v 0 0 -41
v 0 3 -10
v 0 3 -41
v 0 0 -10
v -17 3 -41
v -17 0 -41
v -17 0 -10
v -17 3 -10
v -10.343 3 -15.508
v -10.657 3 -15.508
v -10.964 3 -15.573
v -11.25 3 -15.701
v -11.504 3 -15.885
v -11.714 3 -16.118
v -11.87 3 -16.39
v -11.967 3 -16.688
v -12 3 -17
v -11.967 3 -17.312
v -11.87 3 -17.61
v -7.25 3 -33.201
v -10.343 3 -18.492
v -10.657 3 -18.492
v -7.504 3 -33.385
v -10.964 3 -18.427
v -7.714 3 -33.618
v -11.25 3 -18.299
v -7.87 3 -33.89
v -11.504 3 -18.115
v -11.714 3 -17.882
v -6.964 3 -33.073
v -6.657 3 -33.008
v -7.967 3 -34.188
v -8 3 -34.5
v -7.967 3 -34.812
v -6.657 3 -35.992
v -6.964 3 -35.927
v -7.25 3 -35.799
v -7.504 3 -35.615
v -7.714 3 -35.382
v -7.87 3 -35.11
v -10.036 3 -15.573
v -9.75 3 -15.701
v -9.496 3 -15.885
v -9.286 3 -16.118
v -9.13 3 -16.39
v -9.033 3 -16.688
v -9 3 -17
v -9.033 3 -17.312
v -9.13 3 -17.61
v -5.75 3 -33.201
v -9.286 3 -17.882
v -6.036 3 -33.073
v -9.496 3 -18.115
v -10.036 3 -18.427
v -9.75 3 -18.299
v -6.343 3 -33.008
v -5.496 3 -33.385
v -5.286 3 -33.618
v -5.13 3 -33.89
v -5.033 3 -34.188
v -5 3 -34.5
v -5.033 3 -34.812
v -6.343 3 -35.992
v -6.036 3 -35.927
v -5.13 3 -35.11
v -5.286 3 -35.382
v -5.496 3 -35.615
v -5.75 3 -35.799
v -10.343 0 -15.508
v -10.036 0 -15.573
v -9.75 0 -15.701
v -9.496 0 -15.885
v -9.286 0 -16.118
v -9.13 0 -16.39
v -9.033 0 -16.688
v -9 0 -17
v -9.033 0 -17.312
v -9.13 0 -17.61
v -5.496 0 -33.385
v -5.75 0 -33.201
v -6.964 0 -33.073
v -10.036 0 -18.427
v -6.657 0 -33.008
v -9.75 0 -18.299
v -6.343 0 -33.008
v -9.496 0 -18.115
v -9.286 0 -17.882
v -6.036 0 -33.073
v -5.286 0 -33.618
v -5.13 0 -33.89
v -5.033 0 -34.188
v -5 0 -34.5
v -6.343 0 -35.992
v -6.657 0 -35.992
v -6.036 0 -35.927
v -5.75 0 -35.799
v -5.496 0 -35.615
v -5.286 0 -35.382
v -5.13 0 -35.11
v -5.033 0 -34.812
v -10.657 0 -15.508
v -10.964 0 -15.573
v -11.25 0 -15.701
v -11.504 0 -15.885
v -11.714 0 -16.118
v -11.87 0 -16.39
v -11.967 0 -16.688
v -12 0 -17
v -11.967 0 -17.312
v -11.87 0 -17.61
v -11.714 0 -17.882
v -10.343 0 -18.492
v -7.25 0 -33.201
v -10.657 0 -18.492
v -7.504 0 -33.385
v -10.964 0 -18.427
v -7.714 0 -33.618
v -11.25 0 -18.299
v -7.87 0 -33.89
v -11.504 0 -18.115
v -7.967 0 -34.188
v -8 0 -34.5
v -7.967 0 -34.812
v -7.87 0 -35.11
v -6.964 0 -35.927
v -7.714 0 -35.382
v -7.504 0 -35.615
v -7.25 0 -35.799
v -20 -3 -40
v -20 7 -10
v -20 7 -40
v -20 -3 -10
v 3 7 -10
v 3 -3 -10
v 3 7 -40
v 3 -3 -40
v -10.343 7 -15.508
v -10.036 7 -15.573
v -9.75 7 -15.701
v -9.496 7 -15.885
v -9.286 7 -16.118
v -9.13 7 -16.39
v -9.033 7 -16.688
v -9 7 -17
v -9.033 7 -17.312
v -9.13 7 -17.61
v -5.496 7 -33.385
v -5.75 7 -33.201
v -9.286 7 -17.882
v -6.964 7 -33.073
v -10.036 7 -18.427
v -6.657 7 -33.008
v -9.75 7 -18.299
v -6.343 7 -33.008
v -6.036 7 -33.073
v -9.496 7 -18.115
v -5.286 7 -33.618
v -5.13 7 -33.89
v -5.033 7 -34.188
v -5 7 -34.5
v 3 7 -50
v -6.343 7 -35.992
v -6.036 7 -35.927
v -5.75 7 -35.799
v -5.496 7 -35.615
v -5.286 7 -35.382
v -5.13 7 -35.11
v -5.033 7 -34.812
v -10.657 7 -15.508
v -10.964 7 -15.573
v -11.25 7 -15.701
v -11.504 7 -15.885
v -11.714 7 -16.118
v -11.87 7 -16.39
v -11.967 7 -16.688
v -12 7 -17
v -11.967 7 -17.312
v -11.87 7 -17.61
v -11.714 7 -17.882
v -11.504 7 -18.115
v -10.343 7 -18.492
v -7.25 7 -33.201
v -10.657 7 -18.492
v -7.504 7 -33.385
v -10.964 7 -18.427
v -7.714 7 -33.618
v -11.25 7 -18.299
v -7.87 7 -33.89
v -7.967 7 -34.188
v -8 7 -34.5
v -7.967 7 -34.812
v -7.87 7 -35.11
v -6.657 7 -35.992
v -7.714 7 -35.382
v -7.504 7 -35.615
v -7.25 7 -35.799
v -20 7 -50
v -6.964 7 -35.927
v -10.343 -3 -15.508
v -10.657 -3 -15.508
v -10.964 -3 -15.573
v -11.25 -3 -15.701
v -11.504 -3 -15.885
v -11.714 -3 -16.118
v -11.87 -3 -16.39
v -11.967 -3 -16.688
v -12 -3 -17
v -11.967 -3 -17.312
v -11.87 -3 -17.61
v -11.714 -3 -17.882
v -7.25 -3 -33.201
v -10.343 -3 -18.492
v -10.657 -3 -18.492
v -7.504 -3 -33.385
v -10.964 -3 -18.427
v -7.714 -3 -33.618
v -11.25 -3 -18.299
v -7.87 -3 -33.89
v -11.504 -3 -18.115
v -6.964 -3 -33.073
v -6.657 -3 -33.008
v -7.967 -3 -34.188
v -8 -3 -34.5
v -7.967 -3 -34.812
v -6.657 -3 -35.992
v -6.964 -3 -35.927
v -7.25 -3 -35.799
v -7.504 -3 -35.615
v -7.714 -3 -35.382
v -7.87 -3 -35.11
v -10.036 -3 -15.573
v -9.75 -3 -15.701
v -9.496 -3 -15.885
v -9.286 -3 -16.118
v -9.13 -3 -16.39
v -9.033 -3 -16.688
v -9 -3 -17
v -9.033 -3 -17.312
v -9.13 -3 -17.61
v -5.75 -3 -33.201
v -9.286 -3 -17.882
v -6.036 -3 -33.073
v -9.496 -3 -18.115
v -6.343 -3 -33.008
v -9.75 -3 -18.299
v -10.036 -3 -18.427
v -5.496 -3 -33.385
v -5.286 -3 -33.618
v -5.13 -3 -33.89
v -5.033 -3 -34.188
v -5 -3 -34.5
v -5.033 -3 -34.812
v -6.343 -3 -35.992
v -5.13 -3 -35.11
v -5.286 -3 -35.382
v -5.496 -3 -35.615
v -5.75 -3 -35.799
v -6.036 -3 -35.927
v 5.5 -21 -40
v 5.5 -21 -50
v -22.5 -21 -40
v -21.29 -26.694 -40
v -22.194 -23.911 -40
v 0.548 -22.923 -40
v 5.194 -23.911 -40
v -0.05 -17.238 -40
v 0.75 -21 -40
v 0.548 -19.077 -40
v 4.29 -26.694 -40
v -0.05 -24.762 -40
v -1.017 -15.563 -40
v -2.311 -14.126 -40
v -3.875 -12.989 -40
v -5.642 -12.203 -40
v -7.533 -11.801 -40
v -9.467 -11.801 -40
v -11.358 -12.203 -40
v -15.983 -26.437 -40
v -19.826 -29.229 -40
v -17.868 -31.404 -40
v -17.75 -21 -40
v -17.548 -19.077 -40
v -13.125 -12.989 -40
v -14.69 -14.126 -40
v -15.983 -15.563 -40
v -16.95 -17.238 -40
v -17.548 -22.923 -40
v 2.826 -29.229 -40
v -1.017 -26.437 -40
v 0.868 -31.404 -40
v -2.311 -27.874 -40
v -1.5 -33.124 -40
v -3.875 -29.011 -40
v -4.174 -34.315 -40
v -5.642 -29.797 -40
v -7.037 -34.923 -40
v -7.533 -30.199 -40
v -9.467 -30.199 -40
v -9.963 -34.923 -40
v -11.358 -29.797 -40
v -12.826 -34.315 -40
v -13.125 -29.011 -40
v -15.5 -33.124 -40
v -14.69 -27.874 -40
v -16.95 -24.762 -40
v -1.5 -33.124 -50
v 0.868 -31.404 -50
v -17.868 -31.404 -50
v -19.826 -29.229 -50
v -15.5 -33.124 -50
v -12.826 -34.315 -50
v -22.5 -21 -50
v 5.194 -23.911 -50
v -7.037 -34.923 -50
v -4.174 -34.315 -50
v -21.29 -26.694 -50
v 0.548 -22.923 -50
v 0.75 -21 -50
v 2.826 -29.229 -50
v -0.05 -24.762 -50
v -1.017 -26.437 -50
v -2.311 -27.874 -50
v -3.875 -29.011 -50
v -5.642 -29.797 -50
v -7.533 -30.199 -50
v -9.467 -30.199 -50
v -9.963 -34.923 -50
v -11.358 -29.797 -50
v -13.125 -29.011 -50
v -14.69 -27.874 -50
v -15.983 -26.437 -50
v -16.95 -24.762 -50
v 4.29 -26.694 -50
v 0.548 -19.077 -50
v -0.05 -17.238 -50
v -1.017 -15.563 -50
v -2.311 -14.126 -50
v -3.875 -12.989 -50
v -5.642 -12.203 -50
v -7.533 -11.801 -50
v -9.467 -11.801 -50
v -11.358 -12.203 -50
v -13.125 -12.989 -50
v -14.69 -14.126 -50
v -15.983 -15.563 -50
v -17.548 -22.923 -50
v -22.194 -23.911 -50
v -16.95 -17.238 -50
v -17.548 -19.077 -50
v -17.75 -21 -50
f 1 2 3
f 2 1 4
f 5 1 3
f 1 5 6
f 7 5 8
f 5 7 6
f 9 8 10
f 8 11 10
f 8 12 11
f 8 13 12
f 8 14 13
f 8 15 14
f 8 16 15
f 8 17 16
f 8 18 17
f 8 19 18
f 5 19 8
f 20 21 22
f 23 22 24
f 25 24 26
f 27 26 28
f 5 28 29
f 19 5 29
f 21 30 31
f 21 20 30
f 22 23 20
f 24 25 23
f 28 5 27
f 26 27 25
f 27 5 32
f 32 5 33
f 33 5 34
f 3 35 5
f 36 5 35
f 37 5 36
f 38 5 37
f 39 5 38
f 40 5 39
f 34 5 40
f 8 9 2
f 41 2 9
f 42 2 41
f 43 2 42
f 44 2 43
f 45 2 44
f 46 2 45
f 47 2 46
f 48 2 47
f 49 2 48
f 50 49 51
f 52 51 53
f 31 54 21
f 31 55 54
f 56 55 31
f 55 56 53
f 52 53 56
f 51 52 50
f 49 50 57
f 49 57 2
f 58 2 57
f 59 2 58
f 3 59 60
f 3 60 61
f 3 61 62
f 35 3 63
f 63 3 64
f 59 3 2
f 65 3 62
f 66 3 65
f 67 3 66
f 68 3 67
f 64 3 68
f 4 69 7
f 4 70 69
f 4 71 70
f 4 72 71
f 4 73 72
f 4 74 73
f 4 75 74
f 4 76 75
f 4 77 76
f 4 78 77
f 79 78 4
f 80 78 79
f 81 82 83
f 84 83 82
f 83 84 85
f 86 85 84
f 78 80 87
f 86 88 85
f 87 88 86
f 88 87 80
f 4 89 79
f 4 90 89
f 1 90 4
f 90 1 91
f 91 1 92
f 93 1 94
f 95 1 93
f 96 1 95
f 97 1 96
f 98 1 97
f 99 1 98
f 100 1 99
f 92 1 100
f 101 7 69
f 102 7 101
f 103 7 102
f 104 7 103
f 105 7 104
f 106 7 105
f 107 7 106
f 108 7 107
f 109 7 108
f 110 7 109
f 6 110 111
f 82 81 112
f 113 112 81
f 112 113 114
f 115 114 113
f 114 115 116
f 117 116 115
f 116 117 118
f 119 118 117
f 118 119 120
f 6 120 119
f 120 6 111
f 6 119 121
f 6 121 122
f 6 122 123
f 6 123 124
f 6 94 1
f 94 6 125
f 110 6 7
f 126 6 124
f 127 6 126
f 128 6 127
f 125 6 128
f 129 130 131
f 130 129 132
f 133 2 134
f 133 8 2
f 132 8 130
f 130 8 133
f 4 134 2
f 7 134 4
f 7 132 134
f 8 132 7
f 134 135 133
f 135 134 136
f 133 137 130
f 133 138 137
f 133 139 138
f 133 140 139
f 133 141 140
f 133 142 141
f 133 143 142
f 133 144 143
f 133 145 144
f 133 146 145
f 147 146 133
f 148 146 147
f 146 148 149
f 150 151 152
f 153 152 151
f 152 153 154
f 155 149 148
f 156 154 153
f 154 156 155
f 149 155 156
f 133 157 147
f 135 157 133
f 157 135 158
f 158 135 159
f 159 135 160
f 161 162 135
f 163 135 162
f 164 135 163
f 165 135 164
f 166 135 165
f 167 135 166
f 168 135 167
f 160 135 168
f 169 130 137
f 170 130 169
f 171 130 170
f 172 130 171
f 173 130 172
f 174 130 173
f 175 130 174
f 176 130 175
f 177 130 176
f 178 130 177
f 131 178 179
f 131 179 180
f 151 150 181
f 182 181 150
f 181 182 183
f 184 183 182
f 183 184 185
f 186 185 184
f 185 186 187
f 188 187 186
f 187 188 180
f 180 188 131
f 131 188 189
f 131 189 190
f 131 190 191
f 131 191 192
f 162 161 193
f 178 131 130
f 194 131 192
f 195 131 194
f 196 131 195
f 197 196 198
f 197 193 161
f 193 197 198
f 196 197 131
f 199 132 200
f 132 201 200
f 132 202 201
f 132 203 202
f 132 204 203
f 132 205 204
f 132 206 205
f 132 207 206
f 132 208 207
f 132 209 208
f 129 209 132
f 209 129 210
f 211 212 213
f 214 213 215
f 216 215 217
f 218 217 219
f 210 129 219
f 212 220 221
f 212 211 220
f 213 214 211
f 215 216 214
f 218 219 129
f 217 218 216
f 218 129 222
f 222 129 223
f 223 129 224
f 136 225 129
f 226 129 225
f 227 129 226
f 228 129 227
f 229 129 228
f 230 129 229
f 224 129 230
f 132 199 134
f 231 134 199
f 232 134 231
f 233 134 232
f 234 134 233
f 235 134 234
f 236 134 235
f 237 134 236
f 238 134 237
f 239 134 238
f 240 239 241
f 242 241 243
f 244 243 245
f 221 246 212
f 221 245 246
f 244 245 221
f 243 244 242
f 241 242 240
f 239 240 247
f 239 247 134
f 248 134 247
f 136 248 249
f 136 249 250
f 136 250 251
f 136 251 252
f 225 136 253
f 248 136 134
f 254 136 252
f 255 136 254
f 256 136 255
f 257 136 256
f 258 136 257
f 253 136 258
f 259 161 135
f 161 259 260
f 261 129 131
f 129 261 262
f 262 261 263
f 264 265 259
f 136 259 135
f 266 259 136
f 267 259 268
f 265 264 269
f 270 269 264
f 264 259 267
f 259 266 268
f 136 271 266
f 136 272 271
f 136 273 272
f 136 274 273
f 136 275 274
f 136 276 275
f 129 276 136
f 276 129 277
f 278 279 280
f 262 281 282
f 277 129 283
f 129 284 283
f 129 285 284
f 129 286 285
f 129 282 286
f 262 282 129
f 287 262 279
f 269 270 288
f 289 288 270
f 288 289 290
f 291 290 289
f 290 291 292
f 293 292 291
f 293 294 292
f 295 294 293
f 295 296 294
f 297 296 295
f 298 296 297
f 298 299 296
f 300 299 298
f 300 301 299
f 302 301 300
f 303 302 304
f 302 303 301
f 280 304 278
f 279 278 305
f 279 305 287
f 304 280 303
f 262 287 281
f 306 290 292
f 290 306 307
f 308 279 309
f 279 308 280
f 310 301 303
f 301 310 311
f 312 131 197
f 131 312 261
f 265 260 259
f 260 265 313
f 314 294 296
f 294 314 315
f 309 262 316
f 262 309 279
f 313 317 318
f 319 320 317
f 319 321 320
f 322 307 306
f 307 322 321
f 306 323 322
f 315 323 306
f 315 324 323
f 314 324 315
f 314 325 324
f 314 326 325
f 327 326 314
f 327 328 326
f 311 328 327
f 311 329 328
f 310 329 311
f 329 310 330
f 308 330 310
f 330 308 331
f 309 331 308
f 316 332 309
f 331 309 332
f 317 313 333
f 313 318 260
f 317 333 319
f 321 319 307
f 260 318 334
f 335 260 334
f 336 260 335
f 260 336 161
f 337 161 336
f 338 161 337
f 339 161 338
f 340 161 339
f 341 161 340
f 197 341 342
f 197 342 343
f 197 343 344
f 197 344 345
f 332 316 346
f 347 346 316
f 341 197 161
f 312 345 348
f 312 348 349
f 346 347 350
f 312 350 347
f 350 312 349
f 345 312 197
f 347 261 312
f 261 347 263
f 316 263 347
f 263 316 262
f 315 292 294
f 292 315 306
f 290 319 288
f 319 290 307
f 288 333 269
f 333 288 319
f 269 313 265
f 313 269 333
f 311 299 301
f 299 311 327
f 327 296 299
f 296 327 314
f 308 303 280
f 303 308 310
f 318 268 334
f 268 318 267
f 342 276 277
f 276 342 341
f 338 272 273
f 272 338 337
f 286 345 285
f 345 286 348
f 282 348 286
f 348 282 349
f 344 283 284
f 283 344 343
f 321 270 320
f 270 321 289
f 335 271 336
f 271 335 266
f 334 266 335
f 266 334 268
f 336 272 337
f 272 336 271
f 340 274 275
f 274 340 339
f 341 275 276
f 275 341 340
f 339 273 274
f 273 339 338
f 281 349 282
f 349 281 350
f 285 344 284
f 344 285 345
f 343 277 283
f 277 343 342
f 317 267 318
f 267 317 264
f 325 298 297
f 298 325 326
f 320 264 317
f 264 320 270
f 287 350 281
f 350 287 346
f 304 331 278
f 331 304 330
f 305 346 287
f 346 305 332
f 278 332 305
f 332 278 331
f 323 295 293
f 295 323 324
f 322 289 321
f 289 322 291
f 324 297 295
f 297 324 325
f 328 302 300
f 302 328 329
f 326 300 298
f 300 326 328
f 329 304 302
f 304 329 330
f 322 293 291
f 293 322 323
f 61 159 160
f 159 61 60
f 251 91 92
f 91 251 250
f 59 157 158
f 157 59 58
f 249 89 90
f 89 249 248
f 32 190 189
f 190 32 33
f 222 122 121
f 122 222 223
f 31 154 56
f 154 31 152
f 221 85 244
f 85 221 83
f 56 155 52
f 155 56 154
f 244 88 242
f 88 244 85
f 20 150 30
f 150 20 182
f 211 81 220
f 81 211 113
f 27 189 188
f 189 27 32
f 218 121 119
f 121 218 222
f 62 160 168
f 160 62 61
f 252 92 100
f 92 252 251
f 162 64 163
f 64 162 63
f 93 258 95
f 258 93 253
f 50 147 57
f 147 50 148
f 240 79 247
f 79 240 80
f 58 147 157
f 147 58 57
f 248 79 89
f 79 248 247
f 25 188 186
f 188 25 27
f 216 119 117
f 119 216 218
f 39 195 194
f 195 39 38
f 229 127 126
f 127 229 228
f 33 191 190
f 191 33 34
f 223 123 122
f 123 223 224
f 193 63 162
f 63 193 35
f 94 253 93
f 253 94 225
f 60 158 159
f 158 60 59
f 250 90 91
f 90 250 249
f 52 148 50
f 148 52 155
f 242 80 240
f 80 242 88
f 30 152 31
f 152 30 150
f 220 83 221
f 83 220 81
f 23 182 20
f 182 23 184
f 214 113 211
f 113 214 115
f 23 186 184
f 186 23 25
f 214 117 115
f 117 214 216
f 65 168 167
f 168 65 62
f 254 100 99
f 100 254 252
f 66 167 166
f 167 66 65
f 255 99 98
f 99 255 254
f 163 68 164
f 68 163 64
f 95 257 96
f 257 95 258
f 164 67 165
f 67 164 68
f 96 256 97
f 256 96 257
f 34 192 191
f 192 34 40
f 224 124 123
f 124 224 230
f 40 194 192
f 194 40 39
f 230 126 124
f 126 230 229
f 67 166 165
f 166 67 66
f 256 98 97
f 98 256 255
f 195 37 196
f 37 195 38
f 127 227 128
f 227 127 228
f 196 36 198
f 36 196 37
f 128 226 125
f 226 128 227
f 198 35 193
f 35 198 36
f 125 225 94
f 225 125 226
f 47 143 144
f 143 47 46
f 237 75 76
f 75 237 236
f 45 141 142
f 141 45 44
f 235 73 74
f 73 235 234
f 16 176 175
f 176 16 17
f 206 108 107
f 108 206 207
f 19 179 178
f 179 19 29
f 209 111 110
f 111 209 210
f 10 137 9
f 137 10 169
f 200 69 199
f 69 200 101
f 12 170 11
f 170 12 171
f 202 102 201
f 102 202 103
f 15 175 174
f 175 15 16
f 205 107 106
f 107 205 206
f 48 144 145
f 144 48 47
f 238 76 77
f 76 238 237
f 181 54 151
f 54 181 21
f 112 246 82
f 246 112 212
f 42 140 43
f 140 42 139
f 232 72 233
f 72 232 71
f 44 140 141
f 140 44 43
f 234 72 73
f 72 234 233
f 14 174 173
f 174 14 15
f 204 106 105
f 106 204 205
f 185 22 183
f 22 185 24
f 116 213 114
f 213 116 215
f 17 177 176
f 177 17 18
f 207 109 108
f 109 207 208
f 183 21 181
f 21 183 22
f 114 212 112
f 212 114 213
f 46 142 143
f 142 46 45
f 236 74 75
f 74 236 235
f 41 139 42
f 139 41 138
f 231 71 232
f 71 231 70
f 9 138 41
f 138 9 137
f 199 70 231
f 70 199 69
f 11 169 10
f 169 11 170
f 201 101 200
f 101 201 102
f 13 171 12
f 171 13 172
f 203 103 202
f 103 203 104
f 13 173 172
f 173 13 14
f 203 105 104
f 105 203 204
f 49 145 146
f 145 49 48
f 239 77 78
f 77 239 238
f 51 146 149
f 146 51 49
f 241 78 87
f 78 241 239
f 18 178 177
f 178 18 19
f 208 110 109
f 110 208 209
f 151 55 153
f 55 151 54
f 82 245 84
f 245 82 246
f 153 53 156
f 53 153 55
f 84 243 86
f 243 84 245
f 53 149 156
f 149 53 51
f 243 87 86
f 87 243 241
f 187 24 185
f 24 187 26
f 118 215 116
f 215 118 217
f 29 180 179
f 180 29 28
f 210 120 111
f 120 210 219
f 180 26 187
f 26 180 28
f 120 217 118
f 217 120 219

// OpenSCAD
difference() {
    translate([-20, -3, -45])
        mount();
    rotate([0, 180, 0]) 
        #bracket();

    rotate([90, 0, 0])
        translate([-6.5, -41 + 6.5, -15])
        cylinder(r=1.5, h=20, $fn=30);
    rotate([90, 0, 0])
        translate([-17 + 6.5, -41 + 24, -15])
        cylinder(r=1.5, h=20, $fn=30);
}


// 7.5
// 6.5
// 24

module bracket() {
    #cube(size=[17, 3, 41]);
    rotate([-90, 0, 0])
        translate([0, -3, 0]) 
            cube(size=[17, 3, 41]);
    
}


module mount() {
    difference() {
        union() {
            cube(size=[23, 10, 35]);
            hull(){
                translate([0, 0, -5]) 
                    cube(size=[23, 10, 10]);
                translate([11.5, -18, -5]) 
                    cylinder(r=14, h=10);
            }
        }
        translate([11.5, -18, -5]) 
        #cylinder(r=9.25, h=10);
    }
}
